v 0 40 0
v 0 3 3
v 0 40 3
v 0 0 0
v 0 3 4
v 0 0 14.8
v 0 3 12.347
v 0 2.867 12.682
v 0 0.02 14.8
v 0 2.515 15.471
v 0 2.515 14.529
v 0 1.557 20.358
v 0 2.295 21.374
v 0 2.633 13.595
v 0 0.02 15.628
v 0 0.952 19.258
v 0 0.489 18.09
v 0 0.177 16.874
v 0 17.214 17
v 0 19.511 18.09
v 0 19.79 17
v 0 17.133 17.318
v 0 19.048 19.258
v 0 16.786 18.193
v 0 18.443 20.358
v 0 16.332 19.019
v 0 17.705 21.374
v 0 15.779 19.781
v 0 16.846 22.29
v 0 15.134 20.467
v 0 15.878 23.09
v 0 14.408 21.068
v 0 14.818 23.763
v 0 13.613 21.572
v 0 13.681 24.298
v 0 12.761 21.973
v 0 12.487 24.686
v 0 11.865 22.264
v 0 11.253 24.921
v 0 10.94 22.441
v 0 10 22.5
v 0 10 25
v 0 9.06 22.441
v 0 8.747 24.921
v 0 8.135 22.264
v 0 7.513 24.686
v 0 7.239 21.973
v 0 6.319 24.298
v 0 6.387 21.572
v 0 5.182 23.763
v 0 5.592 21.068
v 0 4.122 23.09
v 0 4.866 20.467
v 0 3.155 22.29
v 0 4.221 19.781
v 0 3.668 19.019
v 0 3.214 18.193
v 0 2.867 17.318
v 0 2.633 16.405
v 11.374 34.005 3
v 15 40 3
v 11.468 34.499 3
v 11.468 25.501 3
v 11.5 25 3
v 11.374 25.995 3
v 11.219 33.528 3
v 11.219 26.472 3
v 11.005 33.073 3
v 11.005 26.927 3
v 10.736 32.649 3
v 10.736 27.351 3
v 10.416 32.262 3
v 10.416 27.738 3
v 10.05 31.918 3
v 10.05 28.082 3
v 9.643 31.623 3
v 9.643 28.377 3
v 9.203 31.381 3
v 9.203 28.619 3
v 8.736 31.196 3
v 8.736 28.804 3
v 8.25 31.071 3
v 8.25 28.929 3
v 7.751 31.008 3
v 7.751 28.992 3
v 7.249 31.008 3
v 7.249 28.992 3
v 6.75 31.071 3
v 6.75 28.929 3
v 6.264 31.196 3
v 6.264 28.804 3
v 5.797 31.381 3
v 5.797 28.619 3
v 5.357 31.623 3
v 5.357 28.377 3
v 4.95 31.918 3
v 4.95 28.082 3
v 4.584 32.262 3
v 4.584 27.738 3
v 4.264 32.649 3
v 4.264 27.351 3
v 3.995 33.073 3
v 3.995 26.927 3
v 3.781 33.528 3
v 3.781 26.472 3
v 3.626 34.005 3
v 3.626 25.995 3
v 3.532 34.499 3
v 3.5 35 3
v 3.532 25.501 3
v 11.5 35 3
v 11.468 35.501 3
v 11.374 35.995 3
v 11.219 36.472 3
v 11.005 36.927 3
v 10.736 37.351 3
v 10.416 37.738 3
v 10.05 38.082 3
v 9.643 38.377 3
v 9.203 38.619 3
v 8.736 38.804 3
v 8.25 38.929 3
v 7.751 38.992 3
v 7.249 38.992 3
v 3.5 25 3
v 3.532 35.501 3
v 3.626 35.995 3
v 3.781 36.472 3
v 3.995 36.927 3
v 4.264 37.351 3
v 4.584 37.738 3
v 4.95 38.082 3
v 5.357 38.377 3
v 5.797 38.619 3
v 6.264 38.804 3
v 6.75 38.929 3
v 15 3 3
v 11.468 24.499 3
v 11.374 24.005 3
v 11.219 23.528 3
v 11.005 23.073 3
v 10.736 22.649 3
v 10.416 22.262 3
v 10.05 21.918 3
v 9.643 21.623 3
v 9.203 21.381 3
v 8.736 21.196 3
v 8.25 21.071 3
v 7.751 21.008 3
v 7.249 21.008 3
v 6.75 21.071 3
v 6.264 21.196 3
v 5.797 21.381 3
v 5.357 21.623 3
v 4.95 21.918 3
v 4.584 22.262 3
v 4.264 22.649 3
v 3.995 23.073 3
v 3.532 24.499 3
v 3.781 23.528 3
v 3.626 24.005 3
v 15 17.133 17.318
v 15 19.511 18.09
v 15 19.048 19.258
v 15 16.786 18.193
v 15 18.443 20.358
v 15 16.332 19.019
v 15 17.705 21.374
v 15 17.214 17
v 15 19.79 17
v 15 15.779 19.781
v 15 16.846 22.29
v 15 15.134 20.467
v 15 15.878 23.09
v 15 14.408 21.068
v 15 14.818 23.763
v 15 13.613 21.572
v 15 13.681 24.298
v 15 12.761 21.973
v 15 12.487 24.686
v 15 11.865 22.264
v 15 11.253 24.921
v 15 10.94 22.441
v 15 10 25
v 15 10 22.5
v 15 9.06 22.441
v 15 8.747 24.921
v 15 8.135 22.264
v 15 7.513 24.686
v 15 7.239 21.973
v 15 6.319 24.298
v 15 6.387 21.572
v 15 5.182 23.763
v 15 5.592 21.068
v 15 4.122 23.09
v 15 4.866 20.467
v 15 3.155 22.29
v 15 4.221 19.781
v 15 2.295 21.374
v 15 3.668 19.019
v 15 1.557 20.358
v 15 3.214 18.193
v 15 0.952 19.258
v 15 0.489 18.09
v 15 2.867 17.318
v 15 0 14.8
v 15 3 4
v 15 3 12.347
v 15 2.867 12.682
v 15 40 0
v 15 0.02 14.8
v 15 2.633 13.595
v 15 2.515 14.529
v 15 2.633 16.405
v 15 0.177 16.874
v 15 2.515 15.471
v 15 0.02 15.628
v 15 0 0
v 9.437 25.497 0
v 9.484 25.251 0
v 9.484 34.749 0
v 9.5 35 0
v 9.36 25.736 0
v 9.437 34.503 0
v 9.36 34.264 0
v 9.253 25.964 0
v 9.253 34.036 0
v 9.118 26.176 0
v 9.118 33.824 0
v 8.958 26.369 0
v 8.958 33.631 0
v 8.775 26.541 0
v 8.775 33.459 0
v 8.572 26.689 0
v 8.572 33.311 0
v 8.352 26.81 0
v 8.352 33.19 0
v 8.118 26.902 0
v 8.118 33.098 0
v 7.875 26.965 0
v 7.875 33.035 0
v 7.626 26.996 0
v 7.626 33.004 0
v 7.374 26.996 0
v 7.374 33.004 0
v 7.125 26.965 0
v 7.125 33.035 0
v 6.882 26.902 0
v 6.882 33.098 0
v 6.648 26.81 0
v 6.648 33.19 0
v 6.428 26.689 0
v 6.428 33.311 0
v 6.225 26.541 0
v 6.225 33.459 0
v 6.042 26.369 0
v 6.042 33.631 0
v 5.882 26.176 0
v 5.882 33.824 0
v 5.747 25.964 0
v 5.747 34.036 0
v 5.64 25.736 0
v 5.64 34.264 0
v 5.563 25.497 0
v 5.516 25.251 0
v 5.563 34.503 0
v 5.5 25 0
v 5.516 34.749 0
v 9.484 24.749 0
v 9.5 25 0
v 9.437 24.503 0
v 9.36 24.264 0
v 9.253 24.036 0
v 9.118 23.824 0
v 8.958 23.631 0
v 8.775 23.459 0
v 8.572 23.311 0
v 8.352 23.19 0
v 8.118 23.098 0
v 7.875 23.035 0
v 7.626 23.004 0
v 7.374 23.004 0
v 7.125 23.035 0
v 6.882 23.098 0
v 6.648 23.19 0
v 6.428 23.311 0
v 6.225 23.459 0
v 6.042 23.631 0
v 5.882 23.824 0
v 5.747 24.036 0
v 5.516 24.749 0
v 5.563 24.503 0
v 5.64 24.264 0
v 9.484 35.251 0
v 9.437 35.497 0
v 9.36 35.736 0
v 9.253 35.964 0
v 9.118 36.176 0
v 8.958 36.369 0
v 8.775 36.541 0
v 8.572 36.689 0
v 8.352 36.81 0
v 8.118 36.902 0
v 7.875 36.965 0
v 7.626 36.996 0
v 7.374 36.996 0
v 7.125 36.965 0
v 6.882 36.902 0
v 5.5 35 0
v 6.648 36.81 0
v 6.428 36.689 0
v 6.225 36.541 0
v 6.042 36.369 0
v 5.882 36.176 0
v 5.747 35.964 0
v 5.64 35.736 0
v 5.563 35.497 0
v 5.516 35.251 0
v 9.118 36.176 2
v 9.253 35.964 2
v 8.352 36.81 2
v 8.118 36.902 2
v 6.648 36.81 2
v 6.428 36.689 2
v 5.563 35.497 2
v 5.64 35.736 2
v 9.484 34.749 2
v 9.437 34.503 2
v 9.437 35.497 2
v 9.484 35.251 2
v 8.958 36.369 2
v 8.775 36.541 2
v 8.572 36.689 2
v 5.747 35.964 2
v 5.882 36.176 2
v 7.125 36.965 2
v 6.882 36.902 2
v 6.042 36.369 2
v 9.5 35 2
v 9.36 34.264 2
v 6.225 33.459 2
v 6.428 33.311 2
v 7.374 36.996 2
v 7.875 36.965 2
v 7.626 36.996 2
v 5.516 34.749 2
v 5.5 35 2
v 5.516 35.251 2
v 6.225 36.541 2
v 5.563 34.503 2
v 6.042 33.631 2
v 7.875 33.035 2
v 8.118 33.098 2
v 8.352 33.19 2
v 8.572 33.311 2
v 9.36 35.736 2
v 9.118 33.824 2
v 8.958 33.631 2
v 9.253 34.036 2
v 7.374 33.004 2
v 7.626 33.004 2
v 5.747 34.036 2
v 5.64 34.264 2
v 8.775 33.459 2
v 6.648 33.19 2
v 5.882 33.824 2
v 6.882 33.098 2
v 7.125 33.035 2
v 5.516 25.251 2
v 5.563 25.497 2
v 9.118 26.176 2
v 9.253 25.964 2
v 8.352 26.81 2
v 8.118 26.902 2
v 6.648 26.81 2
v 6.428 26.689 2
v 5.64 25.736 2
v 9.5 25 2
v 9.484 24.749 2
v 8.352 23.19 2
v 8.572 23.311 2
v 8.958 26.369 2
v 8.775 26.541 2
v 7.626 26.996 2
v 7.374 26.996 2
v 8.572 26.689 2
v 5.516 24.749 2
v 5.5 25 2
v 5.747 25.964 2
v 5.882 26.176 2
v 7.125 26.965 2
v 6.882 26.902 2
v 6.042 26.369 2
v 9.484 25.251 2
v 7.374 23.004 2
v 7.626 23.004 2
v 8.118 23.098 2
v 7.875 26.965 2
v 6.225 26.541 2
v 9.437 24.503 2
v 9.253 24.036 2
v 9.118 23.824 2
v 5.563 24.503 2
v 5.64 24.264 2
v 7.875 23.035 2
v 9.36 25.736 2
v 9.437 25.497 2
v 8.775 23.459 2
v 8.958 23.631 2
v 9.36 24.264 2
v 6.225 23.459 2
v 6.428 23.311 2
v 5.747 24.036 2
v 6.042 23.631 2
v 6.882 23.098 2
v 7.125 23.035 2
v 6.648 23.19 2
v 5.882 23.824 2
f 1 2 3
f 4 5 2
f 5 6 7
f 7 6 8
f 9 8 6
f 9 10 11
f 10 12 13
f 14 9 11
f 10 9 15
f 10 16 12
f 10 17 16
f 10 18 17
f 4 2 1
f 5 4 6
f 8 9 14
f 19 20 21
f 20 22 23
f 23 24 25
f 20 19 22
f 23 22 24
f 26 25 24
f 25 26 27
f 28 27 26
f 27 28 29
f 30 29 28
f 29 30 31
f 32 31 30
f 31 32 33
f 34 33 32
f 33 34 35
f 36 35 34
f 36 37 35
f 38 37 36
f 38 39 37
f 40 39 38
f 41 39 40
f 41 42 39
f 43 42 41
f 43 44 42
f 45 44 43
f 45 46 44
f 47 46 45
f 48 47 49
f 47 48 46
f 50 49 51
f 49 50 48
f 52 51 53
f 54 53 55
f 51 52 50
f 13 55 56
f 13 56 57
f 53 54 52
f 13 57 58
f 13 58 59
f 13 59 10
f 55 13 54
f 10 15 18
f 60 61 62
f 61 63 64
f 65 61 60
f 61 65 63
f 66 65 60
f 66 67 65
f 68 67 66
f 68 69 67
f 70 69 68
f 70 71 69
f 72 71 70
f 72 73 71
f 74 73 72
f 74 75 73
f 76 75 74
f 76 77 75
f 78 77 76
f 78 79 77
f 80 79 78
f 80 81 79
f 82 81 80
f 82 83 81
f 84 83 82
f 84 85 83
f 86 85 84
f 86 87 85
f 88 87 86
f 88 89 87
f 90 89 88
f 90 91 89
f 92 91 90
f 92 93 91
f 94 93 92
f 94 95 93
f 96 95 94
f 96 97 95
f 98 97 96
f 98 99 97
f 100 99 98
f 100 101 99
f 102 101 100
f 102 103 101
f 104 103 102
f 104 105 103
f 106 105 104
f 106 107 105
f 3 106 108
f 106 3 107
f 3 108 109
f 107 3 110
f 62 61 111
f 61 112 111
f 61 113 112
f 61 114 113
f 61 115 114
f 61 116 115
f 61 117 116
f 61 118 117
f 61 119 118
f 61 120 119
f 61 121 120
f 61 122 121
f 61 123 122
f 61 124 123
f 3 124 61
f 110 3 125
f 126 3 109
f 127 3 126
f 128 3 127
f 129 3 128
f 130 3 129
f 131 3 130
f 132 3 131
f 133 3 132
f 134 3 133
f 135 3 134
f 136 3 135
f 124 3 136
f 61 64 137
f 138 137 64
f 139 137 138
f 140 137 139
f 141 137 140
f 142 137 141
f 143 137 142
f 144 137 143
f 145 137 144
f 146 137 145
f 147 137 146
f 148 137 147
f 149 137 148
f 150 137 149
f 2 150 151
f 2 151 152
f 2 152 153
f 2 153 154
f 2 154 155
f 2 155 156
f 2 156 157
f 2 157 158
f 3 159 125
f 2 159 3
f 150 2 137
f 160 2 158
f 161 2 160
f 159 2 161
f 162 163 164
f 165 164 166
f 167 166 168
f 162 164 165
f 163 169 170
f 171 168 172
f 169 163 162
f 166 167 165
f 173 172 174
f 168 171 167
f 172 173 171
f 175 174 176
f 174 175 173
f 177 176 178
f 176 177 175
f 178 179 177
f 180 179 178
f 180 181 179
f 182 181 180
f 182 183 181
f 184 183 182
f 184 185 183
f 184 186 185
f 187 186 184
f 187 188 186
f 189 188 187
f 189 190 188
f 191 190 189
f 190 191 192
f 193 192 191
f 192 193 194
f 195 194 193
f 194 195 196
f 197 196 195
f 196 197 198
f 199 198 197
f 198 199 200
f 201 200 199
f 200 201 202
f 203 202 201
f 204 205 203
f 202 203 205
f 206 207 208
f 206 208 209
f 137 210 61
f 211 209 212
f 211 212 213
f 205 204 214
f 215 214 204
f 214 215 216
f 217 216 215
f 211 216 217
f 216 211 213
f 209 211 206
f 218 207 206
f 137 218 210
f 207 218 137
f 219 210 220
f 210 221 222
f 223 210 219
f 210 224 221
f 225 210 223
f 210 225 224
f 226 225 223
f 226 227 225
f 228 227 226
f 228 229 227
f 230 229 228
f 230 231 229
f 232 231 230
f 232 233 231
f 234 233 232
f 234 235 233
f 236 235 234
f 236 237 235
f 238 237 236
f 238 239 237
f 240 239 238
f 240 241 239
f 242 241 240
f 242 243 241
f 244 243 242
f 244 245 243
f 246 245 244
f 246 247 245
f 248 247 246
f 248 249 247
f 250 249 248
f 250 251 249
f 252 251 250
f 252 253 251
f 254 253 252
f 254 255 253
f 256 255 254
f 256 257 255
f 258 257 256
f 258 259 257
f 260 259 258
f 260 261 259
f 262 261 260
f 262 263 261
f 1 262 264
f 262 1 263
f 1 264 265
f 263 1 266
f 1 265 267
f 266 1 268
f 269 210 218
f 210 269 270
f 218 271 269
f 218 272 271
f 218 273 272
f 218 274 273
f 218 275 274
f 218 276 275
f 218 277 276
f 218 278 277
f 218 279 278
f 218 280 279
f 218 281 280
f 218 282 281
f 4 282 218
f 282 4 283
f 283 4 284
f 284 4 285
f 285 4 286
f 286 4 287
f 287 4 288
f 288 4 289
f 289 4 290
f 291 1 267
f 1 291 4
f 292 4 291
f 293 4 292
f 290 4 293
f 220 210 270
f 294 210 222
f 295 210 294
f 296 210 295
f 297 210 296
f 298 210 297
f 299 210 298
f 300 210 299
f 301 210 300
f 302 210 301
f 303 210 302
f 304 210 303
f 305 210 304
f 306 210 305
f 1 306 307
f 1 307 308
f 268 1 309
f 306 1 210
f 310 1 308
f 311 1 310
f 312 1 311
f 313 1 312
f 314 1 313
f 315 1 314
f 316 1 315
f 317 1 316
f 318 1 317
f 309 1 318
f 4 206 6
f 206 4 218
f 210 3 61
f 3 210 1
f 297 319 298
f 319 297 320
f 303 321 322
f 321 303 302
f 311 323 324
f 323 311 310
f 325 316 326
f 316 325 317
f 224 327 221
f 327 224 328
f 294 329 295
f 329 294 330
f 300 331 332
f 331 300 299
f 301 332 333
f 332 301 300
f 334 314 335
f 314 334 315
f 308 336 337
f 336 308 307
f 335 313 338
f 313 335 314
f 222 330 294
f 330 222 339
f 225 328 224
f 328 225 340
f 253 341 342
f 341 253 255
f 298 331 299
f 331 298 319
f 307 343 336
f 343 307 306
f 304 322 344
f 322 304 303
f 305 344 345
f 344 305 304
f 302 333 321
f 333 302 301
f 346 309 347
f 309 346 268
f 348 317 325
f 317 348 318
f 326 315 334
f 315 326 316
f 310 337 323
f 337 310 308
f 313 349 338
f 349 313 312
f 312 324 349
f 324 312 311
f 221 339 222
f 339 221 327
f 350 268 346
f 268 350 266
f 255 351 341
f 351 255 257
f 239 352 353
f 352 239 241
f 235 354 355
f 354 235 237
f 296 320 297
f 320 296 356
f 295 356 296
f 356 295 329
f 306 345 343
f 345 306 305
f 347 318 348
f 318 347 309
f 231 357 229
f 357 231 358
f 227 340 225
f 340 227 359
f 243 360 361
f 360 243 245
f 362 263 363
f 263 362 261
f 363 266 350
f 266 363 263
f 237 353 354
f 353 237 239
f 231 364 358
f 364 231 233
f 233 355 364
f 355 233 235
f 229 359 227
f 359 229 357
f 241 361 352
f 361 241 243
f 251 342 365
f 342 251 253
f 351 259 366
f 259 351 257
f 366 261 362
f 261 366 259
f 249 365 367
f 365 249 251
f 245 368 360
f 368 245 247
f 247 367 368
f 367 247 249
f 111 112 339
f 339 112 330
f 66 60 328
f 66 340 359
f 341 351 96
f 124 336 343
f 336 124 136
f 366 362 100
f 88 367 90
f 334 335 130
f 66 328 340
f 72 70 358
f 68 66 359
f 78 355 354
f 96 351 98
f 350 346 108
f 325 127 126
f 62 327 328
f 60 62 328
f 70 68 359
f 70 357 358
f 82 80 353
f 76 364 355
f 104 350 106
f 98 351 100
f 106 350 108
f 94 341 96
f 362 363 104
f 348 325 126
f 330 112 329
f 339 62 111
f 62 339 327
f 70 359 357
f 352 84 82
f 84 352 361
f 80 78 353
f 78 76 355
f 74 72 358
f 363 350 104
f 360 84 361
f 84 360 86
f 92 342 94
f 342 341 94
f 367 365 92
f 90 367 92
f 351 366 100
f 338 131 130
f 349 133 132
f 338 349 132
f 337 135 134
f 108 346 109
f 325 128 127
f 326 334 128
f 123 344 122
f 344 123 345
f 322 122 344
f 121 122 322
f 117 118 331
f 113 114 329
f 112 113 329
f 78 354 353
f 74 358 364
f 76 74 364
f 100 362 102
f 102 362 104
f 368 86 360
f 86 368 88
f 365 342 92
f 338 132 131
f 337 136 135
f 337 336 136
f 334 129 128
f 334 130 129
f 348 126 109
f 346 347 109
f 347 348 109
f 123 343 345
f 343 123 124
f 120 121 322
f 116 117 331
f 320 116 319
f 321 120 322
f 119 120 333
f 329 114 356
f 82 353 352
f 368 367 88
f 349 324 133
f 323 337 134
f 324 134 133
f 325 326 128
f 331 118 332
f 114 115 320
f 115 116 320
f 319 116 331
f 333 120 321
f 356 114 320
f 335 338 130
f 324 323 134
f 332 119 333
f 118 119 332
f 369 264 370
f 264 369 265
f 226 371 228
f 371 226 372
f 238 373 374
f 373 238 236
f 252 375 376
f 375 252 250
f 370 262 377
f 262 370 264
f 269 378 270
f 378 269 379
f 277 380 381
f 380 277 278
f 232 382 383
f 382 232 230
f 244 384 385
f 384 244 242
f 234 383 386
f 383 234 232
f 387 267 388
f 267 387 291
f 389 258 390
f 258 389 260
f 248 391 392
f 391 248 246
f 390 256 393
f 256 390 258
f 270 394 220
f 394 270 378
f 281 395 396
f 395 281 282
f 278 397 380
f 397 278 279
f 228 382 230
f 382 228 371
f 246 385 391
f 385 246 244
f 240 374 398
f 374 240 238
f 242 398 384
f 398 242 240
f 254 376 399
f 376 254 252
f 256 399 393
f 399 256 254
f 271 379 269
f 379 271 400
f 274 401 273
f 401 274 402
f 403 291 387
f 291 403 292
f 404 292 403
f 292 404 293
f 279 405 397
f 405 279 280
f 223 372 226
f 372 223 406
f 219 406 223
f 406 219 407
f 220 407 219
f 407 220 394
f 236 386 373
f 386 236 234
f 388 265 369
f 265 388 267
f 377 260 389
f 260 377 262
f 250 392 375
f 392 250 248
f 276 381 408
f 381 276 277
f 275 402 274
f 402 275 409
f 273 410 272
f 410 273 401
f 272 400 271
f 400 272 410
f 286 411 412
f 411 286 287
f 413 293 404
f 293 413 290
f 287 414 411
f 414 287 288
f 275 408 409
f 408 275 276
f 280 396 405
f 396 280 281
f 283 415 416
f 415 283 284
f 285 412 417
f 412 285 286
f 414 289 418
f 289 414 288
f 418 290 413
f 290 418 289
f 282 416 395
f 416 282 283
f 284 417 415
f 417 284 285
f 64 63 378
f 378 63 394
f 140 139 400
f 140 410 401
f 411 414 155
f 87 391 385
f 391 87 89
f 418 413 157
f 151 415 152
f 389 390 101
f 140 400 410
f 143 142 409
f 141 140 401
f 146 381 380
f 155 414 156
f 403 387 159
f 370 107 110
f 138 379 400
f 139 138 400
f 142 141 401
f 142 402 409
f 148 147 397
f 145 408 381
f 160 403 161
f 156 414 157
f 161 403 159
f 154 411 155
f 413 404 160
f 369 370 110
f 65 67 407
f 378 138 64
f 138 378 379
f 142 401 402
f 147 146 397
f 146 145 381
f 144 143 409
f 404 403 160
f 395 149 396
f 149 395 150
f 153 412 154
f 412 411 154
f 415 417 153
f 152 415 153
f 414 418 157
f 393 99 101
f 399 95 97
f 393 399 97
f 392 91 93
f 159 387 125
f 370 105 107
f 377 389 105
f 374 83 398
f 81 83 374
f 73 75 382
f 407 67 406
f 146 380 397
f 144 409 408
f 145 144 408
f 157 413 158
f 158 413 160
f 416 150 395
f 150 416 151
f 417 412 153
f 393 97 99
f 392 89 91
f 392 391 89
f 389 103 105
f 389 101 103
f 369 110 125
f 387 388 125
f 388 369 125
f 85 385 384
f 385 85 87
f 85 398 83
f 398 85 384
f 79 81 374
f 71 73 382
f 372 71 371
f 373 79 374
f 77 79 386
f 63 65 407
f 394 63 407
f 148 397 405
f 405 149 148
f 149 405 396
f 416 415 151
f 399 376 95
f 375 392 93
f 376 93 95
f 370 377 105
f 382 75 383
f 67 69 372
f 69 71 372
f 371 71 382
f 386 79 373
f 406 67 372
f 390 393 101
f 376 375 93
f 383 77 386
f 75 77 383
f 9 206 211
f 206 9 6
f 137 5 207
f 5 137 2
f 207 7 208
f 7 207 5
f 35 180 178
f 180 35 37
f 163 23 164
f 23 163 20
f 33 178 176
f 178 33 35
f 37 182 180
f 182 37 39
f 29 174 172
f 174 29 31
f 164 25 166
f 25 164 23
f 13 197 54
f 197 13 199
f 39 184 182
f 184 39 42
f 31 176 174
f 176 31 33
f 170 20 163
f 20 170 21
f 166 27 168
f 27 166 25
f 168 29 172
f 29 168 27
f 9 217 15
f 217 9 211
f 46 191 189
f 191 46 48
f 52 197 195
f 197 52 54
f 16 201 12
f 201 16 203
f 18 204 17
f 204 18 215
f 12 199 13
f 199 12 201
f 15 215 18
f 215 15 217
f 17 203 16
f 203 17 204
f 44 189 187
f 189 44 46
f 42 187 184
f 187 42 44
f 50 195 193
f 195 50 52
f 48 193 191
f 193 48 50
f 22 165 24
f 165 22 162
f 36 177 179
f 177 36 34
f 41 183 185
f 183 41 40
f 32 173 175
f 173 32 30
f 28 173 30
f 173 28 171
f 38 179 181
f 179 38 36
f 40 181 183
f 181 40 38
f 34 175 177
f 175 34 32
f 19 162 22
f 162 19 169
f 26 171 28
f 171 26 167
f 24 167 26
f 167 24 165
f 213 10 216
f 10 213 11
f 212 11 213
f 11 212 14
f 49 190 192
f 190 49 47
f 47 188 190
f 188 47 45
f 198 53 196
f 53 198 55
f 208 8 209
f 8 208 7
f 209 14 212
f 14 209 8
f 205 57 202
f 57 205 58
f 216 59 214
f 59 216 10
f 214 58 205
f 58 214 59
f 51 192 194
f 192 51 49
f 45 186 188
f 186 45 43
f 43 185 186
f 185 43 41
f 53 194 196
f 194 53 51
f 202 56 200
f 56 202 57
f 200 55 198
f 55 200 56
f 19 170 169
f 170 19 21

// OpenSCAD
$fn=50;

difference(){
	union() {
		difference(){
			cube([15,40,3]);
			translate([7.5,35,0])cylinder(3,4/2,4/2);
			translate([7.5,35,2])cylinder(1,4/2,8/2);
			translate([7.5,25,0])cylinder(3,4/2,4/2);
			translate([7.5,25,2])cylinder(1,4/2,8/2);
		}
		cube([15,3,14.8]);
		translate([0,10,15]) rotate(90,[0,1,0]) cylinder(15,20/2,20/2);
	}
	translate([0,10,15]) rotate(90,[0,1,0]) cylinder(15,15/2,15/2);
	translate([0,3,4]) cube([15,18,13]);
}
